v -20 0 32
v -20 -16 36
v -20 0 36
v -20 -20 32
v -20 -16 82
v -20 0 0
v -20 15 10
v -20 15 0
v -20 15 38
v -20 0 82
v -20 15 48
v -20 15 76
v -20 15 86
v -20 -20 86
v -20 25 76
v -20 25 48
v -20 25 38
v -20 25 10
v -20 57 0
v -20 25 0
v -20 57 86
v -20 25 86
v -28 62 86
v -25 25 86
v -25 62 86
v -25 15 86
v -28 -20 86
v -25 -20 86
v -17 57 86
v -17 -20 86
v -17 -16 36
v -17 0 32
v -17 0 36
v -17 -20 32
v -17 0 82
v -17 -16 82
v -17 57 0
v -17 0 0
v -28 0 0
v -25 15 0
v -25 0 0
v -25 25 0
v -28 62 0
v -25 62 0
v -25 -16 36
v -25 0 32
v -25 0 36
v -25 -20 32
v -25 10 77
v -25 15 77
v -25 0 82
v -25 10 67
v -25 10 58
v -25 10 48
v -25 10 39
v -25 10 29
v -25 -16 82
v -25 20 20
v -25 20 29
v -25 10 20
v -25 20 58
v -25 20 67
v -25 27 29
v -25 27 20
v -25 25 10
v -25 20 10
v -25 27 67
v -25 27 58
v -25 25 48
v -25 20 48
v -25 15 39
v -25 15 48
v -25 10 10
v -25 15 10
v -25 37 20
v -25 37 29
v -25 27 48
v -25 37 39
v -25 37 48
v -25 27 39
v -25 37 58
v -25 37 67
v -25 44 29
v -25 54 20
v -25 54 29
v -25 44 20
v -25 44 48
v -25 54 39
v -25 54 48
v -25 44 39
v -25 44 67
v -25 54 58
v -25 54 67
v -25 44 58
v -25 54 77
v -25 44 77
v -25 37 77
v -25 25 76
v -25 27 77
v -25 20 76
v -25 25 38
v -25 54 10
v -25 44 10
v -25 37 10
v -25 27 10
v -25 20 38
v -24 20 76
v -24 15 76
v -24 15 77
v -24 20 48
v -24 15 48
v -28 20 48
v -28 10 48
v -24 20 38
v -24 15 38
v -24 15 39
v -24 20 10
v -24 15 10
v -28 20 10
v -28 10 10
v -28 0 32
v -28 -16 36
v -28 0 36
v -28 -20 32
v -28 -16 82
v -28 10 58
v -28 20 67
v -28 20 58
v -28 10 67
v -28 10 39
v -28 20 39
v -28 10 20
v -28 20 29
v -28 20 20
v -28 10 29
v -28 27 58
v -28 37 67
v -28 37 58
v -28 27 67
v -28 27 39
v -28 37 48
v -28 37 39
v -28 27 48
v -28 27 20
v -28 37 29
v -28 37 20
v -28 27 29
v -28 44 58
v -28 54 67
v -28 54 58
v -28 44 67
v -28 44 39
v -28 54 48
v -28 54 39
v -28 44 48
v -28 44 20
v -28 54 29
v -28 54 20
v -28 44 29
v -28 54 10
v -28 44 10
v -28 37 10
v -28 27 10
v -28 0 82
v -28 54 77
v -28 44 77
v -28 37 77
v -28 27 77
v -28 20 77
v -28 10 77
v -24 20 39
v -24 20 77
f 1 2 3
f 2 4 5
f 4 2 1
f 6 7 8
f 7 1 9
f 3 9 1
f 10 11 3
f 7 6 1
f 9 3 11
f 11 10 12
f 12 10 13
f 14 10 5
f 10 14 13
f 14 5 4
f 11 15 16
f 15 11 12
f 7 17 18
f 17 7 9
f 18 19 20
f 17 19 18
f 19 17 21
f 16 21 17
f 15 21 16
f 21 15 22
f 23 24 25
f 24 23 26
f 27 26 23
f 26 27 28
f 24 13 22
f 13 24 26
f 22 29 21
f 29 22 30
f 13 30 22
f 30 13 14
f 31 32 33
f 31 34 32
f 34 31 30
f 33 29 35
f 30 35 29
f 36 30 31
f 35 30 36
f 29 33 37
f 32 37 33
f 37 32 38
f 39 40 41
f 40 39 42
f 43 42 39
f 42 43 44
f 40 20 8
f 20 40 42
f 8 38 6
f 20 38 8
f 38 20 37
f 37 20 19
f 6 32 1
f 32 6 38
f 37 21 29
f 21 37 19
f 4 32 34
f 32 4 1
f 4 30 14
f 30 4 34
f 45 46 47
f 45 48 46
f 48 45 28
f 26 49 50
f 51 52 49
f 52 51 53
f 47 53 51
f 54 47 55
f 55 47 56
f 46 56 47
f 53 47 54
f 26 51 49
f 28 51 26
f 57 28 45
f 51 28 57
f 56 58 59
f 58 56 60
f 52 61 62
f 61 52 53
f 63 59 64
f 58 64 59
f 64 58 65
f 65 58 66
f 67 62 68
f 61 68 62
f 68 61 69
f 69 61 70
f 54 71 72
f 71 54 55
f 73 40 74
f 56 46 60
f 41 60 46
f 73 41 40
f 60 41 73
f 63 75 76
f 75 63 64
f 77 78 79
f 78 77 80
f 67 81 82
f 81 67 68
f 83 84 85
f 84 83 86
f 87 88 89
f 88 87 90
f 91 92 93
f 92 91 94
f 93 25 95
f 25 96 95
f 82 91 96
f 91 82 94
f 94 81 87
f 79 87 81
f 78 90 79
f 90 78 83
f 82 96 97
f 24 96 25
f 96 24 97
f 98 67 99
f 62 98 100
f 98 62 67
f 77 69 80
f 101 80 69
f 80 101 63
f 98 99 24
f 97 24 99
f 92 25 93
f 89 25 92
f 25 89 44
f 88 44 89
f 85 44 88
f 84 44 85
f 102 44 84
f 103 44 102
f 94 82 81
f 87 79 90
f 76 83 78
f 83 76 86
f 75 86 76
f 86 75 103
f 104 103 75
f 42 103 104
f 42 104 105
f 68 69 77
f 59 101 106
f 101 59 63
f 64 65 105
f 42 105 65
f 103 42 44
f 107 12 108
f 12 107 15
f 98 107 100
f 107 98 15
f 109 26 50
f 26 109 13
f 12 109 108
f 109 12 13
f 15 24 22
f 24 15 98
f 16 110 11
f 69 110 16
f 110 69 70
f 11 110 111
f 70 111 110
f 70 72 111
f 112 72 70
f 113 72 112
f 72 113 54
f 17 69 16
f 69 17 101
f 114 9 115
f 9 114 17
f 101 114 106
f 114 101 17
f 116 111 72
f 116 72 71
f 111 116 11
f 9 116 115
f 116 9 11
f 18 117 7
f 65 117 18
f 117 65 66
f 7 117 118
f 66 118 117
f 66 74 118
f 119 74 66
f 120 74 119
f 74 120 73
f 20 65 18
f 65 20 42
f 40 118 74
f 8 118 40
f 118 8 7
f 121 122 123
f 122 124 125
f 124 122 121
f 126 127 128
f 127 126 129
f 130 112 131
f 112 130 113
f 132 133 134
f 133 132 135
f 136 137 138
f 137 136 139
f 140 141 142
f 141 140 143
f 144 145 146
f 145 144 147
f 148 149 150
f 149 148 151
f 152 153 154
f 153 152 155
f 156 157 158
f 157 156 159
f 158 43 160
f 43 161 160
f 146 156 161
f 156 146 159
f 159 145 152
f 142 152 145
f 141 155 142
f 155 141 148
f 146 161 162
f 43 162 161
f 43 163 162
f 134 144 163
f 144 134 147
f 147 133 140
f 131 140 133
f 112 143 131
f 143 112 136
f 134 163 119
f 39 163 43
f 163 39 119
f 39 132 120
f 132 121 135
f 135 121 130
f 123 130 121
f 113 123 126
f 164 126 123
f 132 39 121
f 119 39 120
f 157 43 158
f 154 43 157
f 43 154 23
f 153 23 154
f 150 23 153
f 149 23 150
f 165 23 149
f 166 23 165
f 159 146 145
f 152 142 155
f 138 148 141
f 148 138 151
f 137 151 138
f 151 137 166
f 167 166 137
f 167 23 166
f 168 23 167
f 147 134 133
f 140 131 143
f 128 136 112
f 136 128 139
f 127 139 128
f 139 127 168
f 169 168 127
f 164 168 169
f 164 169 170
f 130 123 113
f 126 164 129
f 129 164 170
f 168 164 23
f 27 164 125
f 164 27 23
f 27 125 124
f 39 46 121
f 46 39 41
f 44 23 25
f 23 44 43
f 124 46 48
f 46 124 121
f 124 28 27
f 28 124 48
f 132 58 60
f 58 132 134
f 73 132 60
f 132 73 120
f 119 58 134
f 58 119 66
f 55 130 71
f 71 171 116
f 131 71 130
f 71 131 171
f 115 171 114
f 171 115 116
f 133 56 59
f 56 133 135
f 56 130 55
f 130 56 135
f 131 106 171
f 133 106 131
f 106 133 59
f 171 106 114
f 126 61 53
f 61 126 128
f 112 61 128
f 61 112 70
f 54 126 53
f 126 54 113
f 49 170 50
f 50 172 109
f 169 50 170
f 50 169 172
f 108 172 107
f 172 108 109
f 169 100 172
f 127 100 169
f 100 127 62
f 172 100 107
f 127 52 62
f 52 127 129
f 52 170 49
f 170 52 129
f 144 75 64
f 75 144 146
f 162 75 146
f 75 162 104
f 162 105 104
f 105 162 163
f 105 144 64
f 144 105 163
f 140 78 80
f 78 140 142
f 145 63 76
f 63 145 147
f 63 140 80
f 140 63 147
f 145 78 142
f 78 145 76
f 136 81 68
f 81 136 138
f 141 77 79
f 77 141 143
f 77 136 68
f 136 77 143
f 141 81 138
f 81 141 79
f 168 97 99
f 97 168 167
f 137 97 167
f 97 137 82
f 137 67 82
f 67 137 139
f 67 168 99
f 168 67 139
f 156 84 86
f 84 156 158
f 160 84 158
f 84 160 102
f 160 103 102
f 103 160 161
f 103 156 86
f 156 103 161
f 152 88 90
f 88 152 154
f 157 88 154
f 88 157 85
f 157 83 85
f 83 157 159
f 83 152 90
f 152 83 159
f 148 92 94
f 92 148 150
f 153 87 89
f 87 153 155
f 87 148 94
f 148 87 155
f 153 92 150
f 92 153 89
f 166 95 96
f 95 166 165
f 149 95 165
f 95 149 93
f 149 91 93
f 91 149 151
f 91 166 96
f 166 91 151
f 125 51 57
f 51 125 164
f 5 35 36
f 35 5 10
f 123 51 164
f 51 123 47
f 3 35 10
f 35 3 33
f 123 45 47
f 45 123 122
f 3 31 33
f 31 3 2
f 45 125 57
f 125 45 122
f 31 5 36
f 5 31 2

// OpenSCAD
difference() {
    union() {
        translate([-20, 0, 0]) { 
            cube([3, 57, 86]);
        }
        translate([-20, -20, 32]) {
            cube([3, 20, 54]);
        }
        
        translate([-25, 15, 76]) {
            cube([5, 10, 10]);
        }
        translate([-25, 15, 38]) {
            cube([5, 10, 10]);
        }
        translate([-25, 15, 0]) {
            cube([5, 10, 10]);
        }
        
        translate([-28, 0, 0]) { 
            cube([3, 62, 86]);
        }
        translate([-28, -20, 32]) {
            cube([3, 20, 54]);
        }
    }
    
    translate([-65, -16, 36]) {
        cube([50, 16, 46]);
    }
    
    for (a = [10 : 17 : 45]) {
        for (b = [10 : 19 : 85]) {
            translate([-30, 0 + a, 0 + b]) {
                cube([6, 10, 10]);
            }
        }
    }
}
